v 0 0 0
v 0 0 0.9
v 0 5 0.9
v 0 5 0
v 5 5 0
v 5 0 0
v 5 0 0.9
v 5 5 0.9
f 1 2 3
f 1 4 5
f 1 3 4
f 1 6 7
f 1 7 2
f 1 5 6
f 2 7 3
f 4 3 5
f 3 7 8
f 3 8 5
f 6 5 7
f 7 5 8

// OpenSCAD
/* Warning, this is a very basic generator with a lot of approximation 
input data : [VTLA, DE, 5x5x0.9mm, 36, , C, C04-00187C]
generated by com.zoubworld.electronics.cad.model3d.Basic
Date : Sun Feb 15 10:50:48 CET 2026
*/

//body
color("black")
translate([0,0,0])
cube([5.0,5.0,0.9], center=false);
